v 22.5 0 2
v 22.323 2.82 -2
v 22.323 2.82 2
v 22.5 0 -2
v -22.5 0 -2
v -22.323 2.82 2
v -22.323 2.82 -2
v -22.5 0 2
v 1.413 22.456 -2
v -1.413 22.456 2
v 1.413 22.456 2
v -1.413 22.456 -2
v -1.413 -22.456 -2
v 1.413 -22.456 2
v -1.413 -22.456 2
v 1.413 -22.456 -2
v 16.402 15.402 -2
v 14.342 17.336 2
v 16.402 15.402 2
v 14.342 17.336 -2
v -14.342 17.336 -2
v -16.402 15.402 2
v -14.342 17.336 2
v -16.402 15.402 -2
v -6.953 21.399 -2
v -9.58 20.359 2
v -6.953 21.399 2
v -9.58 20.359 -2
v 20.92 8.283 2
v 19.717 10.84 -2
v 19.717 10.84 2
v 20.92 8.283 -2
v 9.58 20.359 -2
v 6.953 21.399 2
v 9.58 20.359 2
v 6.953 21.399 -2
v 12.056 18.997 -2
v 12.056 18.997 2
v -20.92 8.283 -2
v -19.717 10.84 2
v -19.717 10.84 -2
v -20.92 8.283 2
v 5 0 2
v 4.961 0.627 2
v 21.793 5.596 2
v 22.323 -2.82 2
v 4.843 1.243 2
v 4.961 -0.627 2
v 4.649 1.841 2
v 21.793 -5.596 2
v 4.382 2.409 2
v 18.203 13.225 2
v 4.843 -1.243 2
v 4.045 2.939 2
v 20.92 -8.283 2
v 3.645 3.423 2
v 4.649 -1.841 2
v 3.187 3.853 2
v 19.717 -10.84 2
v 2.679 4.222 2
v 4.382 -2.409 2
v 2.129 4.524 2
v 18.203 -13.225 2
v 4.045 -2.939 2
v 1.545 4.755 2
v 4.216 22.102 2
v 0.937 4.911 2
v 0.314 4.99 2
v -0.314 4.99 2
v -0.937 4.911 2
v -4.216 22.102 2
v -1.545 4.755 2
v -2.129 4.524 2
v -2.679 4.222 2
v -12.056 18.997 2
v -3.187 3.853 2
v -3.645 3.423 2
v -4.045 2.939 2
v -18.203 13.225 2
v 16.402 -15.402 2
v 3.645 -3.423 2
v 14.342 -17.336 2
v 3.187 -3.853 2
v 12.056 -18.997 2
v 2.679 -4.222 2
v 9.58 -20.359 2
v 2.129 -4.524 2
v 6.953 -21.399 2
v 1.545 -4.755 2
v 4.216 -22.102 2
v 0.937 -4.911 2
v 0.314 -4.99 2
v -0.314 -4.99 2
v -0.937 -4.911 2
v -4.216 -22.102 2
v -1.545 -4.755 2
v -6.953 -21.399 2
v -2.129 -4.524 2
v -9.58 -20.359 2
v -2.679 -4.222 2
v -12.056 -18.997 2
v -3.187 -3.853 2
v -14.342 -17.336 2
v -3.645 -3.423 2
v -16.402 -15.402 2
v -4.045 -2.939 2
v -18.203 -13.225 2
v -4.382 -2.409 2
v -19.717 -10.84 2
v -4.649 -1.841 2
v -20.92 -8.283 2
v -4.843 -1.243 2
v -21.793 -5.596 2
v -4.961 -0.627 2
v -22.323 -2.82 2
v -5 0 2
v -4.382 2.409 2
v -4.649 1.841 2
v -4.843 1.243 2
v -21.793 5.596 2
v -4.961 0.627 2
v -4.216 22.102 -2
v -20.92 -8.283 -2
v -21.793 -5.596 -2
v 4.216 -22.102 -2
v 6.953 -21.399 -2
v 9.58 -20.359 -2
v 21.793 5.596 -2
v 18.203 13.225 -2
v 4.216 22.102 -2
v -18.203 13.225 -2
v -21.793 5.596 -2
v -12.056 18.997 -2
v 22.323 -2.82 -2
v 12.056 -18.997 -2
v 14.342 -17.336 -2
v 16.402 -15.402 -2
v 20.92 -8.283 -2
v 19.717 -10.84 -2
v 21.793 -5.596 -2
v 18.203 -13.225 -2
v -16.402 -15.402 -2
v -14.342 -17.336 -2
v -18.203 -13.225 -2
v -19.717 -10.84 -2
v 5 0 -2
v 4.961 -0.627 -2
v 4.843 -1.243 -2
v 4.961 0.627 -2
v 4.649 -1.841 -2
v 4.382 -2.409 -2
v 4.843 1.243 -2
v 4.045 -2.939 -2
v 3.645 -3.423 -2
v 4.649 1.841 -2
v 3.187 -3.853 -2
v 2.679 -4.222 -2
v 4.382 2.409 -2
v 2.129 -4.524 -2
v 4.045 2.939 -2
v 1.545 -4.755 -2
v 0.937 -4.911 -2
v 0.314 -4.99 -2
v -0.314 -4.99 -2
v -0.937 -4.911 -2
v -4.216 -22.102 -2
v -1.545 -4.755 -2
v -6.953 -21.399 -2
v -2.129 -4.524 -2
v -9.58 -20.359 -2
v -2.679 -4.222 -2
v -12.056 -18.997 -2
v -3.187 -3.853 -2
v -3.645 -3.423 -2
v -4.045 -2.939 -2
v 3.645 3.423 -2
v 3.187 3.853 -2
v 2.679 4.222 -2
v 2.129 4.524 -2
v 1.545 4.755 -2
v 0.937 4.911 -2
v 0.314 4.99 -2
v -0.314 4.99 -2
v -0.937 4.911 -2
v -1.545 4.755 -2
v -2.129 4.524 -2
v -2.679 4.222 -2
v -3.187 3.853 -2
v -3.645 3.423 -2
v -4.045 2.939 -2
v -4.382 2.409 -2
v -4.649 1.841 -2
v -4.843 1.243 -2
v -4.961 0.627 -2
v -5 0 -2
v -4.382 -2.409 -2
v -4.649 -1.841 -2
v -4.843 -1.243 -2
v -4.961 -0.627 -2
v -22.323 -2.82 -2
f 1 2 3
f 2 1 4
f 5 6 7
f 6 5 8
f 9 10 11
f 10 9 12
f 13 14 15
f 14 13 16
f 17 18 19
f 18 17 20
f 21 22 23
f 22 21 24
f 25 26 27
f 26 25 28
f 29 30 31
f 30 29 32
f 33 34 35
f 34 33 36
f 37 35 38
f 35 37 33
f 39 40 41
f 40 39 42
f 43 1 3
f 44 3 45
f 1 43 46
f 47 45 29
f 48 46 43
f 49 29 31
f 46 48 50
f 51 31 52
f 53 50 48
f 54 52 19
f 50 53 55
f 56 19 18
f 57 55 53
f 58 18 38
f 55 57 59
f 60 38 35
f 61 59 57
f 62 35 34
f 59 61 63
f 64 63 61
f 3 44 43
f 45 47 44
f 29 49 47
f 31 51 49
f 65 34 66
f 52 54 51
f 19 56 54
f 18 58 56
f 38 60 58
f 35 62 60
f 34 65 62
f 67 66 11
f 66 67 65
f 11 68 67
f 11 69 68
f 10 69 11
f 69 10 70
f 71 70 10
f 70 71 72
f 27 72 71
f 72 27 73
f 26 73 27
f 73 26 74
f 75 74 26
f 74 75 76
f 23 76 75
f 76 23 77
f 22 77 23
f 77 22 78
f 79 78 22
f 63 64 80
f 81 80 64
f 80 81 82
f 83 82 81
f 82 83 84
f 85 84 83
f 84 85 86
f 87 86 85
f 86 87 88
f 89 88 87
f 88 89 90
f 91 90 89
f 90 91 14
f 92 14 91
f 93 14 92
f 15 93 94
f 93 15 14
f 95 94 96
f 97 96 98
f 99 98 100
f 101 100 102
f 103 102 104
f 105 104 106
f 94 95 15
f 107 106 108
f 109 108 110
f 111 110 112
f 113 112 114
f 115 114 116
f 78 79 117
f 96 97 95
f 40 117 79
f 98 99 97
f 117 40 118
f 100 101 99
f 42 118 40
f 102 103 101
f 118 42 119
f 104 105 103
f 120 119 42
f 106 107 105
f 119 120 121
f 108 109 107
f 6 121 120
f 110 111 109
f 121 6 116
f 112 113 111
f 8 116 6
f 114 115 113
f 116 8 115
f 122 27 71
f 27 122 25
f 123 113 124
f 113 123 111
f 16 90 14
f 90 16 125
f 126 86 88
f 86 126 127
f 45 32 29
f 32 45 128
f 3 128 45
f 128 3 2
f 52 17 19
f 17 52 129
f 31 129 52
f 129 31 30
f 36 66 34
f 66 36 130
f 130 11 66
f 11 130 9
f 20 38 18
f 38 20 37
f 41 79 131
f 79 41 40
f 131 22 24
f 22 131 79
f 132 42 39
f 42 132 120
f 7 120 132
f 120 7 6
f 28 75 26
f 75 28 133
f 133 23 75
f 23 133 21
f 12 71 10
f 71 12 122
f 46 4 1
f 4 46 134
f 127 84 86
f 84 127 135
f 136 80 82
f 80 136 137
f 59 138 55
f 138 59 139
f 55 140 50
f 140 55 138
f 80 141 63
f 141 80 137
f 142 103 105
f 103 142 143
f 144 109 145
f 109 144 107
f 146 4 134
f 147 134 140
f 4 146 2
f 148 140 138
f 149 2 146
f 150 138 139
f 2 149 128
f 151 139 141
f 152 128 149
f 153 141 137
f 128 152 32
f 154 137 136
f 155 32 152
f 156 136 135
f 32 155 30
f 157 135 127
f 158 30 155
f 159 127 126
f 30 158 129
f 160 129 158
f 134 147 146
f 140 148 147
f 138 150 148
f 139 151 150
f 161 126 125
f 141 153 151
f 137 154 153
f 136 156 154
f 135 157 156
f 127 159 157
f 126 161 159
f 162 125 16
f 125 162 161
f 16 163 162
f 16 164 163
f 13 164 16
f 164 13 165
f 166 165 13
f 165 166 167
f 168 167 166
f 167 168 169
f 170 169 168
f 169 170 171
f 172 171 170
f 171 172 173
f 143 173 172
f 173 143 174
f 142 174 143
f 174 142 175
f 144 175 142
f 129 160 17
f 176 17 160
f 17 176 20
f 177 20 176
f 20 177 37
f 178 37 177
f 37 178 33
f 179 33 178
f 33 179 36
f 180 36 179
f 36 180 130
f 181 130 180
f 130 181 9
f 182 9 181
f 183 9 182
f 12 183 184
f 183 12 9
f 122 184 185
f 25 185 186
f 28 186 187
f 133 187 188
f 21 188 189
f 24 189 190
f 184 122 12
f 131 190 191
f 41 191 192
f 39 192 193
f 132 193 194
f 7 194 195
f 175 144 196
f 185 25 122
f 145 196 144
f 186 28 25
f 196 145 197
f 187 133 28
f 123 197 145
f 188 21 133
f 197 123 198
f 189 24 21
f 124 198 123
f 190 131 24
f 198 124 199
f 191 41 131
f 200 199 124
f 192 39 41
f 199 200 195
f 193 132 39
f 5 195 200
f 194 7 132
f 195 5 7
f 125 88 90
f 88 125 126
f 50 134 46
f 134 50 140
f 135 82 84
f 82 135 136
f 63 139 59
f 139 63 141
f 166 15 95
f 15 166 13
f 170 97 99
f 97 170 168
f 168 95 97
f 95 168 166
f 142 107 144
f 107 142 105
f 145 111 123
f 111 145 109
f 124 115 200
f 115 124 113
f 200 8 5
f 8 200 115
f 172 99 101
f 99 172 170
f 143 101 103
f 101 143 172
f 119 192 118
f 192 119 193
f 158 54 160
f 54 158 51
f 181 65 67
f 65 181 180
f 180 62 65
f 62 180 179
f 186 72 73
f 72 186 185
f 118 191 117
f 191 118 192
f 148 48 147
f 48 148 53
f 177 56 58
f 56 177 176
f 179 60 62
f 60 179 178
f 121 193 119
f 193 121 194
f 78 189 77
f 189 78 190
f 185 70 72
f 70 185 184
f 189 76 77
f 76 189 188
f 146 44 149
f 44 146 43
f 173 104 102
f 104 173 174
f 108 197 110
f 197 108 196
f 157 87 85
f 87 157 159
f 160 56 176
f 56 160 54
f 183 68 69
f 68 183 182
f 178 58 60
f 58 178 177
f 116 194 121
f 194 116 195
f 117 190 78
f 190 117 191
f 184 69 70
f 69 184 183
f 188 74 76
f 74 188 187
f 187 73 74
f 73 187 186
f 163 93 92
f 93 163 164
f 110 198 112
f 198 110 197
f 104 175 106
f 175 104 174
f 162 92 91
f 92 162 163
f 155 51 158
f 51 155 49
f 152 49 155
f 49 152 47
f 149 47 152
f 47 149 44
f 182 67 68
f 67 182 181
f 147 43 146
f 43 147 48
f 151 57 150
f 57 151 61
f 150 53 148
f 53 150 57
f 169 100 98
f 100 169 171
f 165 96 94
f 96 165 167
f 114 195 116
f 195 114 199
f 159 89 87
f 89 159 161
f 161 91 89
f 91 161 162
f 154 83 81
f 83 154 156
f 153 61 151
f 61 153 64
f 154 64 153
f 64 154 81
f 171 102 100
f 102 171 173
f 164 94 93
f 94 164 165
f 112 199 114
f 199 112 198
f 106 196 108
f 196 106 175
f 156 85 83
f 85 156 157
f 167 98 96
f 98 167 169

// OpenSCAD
$fn = 50;


difference() {
	union() {
		translate(v = [0, 0, -2.0000000000]) {
			cylinder(h = 4, r = 22.5000000000);
		}
	}
	union() {
		translate(v = [0, 0, -100.0000000000]) {
			cylinder(h = 200, r = 5);
		}
	}
}
